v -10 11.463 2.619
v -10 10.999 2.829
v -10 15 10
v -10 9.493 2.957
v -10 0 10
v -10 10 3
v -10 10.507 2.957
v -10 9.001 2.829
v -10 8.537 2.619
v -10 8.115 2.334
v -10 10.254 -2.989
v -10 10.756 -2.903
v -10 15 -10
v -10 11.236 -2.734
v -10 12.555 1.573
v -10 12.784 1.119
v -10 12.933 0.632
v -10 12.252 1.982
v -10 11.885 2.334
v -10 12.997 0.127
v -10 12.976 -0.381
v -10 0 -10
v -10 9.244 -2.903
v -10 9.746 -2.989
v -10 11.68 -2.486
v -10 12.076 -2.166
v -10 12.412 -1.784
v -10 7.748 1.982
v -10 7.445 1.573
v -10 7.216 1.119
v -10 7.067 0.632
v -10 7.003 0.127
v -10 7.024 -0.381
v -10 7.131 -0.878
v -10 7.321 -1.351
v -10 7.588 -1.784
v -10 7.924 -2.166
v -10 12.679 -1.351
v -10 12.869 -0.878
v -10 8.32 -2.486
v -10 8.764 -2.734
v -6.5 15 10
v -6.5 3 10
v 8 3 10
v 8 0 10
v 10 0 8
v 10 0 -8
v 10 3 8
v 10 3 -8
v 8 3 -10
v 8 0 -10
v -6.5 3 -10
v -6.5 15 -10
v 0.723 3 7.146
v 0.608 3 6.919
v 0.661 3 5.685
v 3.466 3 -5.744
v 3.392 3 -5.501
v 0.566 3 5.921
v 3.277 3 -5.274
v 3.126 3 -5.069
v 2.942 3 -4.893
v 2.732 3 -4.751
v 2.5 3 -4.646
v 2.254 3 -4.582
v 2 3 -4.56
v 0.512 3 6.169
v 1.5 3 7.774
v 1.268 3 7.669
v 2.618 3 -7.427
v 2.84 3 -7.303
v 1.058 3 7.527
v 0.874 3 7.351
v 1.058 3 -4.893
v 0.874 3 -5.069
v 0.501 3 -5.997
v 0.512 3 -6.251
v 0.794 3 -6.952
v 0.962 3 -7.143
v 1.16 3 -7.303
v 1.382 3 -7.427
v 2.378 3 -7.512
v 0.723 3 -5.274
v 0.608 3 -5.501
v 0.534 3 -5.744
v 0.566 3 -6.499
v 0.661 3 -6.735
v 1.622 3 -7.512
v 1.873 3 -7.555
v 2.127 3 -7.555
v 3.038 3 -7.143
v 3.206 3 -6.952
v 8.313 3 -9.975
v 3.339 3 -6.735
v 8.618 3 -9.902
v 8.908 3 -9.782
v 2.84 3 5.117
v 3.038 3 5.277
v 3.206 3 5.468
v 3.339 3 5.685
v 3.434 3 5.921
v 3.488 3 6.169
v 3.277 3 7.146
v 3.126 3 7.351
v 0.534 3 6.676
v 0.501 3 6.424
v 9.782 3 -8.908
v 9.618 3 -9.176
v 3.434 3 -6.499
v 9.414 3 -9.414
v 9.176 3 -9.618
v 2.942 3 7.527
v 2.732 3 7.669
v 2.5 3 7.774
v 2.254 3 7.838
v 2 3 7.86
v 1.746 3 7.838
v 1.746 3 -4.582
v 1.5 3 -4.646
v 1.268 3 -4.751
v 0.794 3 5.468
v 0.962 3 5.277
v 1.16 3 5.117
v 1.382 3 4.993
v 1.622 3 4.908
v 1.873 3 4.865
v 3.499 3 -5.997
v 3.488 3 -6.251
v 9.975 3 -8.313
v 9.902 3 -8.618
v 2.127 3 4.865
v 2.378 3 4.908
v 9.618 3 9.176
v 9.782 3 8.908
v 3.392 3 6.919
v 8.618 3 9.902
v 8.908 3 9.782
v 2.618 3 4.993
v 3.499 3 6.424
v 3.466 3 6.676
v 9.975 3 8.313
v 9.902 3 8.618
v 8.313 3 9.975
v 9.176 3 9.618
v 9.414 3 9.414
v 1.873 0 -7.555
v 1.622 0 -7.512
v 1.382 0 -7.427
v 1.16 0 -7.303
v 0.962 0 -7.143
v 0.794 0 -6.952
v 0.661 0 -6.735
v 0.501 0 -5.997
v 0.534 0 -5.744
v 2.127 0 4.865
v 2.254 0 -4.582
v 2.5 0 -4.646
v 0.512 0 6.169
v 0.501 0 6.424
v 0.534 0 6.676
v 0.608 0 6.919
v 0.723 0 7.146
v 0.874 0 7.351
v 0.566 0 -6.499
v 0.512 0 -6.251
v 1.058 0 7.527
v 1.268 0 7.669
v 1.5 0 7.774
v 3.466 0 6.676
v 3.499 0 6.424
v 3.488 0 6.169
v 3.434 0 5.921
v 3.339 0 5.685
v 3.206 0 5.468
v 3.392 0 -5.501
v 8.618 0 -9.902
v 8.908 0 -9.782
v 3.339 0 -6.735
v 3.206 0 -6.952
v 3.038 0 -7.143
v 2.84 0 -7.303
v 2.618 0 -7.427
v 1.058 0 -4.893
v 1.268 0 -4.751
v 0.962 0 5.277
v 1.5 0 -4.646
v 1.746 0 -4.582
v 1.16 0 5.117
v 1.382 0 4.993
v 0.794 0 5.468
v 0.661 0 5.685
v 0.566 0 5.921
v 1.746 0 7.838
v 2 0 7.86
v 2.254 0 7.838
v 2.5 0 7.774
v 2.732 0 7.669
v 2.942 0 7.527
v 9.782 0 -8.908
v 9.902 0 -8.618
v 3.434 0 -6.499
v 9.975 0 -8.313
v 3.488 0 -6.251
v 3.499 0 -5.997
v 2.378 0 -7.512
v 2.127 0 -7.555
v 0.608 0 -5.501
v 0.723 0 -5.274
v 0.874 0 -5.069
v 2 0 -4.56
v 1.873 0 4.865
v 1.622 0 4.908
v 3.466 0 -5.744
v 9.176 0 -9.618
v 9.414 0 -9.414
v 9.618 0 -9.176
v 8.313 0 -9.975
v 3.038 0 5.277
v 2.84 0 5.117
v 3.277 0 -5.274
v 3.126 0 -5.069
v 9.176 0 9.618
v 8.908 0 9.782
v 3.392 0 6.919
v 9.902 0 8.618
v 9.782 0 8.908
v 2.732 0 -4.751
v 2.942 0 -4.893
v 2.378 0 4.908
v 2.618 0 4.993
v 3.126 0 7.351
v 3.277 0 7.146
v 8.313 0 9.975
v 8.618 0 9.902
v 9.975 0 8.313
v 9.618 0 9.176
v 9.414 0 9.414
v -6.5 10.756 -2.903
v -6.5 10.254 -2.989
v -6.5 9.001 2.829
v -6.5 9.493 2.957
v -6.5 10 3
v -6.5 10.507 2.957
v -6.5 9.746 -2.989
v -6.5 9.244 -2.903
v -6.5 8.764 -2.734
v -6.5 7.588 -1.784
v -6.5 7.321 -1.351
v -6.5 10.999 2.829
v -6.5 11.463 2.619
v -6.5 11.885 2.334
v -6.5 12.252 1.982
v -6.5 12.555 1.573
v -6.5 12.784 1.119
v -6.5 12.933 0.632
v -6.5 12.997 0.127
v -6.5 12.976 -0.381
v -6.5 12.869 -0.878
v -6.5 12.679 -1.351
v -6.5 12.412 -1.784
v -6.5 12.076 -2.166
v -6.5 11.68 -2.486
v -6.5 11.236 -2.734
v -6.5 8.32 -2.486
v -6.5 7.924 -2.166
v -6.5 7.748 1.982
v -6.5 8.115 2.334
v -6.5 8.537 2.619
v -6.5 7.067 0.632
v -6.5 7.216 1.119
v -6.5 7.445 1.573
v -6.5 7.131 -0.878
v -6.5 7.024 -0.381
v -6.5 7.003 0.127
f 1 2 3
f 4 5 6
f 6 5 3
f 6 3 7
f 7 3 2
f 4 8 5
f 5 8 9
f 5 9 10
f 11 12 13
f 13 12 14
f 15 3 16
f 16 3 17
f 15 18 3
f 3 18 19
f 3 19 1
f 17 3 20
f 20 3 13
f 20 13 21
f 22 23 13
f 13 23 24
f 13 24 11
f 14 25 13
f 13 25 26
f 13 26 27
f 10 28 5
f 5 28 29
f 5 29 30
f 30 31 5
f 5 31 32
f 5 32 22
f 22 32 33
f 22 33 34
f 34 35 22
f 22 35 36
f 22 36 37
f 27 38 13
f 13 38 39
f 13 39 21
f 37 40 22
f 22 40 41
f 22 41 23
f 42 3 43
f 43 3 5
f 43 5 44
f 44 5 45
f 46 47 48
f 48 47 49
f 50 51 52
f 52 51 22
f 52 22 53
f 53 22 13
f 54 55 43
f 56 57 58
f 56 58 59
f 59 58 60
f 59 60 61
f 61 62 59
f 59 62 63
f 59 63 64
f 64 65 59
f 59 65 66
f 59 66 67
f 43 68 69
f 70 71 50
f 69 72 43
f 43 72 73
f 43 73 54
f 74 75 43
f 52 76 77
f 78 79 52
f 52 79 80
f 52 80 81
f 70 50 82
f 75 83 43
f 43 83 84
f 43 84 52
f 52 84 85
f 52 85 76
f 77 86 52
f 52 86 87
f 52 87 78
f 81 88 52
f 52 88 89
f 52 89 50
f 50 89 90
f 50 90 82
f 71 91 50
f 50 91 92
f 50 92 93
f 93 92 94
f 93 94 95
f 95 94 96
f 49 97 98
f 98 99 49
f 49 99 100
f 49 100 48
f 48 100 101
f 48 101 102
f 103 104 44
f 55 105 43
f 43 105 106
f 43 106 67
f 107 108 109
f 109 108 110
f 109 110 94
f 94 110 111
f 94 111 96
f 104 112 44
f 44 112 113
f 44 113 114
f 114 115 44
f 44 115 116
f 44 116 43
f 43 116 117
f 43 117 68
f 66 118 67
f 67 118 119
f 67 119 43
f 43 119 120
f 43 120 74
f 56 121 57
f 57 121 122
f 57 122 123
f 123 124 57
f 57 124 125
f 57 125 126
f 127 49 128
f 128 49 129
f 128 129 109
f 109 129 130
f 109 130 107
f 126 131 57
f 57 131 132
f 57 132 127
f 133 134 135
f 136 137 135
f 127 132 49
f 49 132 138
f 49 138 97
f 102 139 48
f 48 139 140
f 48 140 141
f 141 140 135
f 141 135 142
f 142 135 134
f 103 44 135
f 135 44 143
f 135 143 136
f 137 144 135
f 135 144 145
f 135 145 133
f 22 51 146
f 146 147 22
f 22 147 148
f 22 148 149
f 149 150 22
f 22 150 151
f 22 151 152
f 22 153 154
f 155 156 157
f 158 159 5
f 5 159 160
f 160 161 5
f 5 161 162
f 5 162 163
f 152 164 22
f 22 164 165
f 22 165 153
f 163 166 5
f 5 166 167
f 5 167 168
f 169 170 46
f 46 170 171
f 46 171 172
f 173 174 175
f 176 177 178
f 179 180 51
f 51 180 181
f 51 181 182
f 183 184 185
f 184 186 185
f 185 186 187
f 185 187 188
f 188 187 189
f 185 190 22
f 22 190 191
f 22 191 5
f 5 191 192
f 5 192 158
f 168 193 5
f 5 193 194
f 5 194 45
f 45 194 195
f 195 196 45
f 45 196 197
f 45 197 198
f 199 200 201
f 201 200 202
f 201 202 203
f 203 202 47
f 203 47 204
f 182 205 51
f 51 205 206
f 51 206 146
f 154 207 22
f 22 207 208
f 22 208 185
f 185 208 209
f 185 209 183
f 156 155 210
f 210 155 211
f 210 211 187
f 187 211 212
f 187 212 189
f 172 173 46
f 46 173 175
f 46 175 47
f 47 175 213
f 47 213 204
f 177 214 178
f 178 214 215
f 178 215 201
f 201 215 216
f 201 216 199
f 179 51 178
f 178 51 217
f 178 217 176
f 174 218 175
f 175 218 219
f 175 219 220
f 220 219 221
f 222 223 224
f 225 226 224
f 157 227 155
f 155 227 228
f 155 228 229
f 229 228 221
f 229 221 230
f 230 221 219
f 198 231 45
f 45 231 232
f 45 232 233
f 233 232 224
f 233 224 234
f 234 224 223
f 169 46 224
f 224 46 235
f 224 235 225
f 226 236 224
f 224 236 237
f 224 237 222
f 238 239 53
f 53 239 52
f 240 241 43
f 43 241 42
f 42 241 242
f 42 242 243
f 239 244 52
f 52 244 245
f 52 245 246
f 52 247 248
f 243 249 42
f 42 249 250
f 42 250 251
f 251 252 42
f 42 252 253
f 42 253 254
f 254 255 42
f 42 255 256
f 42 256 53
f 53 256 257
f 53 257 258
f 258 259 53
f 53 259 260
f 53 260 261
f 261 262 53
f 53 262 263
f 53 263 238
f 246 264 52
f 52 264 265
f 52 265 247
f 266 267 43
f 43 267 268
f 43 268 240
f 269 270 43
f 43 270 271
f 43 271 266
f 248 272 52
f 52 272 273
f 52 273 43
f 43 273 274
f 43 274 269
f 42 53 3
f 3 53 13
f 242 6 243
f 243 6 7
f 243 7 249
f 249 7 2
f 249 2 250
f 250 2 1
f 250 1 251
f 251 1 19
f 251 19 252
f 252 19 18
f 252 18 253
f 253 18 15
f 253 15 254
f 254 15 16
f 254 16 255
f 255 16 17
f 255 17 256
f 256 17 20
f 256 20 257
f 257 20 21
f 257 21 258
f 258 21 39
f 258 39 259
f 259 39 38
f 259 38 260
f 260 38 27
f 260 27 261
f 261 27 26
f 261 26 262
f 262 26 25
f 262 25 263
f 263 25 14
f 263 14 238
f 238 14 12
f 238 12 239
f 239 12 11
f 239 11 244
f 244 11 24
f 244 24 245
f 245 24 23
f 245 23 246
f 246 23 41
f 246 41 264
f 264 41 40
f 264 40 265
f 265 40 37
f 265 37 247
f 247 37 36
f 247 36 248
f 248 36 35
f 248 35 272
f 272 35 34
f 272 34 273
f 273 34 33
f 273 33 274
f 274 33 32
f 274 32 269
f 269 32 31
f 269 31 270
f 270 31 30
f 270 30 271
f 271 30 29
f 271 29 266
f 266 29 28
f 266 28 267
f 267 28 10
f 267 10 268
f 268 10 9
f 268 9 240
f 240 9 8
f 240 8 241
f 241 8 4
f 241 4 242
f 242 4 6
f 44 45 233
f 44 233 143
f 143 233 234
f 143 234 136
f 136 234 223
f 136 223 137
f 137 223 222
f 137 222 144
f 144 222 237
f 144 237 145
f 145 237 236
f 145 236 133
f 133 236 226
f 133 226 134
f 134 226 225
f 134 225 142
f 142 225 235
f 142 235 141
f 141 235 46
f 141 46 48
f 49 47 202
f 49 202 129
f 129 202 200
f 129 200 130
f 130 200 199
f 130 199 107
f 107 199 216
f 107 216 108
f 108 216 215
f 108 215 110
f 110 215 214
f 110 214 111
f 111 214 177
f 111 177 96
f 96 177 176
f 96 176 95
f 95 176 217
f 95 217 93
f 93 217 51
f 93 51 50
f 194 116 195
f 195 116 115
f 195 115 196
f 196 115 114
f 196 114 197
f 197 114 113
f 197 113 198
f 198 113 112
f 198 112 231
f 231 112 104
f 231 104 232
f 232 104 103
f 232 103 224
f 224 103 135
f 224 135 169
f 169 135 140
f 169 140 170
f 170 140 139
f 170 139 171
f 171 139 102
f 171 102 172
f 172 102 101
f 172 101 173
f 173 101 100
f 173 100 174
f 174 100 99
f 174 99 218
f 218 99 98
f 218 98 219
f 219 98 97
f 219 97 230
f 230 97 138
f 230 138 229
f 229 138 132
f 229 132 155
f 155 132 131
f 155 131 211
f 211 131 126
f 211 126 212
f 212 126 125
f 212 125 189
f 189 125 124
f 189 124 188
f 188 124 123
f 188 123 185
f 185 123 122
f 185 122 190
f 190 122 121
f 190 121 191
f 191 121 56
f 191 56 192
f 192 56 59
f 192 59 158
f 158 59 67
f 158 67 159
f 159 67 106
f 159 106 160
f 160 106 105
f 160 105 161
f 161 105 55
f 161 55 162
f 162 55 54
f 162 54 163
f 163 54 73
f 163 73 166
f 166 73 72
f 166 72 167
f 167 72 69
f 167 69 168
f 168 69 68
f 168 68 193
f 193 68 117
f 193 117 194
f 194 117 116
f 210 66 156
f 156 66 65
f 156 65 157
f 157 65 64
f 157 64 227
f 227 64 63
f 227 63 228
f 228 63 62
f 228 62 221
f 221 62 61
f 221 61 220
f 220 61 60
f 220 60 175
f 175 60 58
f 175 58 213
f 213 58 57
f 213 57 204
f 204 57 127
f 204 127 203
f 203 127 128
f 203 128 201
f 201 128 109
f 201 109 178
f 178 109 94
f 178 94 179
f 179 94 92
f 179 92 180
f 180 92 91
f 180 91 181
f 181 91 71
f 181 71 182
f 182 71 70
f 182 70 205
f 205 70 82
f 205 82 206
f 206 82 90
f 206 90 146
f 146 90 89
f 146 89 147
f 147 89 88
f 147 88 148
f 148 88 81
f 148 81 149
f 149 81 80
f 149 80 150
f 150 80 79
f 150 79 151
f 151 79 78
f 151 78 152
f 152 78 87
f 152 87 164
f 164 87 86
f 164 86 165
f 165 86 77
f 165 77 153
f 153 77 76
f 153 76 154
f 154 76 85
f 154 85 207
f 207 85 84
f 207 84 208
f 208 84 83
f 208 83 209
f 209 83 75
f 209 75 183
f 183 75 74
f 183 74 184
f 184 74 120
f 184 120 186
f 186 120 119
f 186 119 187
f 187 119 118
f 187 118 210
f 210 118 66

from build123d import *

# Parameters (mm, degrees)
SKETCH1_W           = 20
SKETCH1_H           = 20
BOSS_EXTRUDE1_DEPTH = 3
SKETCH2_W           = 3.5
SKETCH2_H           = 20
BOSS_EXTRUDE2_DEPTH = 12
SKETCH3_R           = 3
CUT_EXTRUDE1_DEPTH  = 12
FILLET1_R           = 2
SKETCH4_R           = 1.5
CUT_EXTRUDE2_DEPTH  = 12


with BuildPart() as part:
    # Sketch1 → Boss-Extrude1 (new body)
    with BuildSketch(Plane(origin=(0, 0, 0), x_dir=(1, 0, 0), z_dir=(0, 1, 0))):
        Rectangle(SKETCH1_W, SKETCH1_H)
    extrude(amount=BOSS_EXTRUDE1_DEPTH)

    # Sketch2 → Boss-Extrude2 (add)
    with BuildSketch(Plane(origin=(0, 3, 0), x_dir=(1, 0, 0), z_dir=(0, 1, 0))):
        with Locations((-8.25, 0)):
            Rectangle(SKETCH2_W, SKETCH2_H)
    extrude(amount=BOSS_EXTRUDE2_DEPTH)

    # Sketch3 → Cut-Extrude1 (cut)
    with BuildSketch(Plane.ZY.offset(10)):
        with Locations((0, 10)):
            Circle(SKETCH3_R)
    extrude(amount=-CUT_EXTRUDE1_DEPTH, mode=Mode.SUBTRACT)

    # Fillet1
    fillet1_edges = [part.edges().sort_by_distance(p)[0] for p in [
        (10, 1.5, -10),
        (10, 1.5, 10),
    ]]
    fillet(fillet1_edges, radius=FILLET1_R)

    # Sketch4 → Cut-Extrude2 (cut)
    with BuildSketch(Plane(origin=(0, 3, 0), x_dir=(1, 0, 0), z_dir=(0, 1, 0))):
        with Locations(Location((2, 6.060166803, 0), (0, 0, 270))):
            Circle(SKETCH4_R)
        with Locations(Location((2, -6.359845381, 0), (0, 0, 270))):
            Circle(SKETCH4_R)
    extrude(amount=-CUT_EXTRUDE2_DEPTH, mode=Mode.SUBTRACT)


solid = part.part
